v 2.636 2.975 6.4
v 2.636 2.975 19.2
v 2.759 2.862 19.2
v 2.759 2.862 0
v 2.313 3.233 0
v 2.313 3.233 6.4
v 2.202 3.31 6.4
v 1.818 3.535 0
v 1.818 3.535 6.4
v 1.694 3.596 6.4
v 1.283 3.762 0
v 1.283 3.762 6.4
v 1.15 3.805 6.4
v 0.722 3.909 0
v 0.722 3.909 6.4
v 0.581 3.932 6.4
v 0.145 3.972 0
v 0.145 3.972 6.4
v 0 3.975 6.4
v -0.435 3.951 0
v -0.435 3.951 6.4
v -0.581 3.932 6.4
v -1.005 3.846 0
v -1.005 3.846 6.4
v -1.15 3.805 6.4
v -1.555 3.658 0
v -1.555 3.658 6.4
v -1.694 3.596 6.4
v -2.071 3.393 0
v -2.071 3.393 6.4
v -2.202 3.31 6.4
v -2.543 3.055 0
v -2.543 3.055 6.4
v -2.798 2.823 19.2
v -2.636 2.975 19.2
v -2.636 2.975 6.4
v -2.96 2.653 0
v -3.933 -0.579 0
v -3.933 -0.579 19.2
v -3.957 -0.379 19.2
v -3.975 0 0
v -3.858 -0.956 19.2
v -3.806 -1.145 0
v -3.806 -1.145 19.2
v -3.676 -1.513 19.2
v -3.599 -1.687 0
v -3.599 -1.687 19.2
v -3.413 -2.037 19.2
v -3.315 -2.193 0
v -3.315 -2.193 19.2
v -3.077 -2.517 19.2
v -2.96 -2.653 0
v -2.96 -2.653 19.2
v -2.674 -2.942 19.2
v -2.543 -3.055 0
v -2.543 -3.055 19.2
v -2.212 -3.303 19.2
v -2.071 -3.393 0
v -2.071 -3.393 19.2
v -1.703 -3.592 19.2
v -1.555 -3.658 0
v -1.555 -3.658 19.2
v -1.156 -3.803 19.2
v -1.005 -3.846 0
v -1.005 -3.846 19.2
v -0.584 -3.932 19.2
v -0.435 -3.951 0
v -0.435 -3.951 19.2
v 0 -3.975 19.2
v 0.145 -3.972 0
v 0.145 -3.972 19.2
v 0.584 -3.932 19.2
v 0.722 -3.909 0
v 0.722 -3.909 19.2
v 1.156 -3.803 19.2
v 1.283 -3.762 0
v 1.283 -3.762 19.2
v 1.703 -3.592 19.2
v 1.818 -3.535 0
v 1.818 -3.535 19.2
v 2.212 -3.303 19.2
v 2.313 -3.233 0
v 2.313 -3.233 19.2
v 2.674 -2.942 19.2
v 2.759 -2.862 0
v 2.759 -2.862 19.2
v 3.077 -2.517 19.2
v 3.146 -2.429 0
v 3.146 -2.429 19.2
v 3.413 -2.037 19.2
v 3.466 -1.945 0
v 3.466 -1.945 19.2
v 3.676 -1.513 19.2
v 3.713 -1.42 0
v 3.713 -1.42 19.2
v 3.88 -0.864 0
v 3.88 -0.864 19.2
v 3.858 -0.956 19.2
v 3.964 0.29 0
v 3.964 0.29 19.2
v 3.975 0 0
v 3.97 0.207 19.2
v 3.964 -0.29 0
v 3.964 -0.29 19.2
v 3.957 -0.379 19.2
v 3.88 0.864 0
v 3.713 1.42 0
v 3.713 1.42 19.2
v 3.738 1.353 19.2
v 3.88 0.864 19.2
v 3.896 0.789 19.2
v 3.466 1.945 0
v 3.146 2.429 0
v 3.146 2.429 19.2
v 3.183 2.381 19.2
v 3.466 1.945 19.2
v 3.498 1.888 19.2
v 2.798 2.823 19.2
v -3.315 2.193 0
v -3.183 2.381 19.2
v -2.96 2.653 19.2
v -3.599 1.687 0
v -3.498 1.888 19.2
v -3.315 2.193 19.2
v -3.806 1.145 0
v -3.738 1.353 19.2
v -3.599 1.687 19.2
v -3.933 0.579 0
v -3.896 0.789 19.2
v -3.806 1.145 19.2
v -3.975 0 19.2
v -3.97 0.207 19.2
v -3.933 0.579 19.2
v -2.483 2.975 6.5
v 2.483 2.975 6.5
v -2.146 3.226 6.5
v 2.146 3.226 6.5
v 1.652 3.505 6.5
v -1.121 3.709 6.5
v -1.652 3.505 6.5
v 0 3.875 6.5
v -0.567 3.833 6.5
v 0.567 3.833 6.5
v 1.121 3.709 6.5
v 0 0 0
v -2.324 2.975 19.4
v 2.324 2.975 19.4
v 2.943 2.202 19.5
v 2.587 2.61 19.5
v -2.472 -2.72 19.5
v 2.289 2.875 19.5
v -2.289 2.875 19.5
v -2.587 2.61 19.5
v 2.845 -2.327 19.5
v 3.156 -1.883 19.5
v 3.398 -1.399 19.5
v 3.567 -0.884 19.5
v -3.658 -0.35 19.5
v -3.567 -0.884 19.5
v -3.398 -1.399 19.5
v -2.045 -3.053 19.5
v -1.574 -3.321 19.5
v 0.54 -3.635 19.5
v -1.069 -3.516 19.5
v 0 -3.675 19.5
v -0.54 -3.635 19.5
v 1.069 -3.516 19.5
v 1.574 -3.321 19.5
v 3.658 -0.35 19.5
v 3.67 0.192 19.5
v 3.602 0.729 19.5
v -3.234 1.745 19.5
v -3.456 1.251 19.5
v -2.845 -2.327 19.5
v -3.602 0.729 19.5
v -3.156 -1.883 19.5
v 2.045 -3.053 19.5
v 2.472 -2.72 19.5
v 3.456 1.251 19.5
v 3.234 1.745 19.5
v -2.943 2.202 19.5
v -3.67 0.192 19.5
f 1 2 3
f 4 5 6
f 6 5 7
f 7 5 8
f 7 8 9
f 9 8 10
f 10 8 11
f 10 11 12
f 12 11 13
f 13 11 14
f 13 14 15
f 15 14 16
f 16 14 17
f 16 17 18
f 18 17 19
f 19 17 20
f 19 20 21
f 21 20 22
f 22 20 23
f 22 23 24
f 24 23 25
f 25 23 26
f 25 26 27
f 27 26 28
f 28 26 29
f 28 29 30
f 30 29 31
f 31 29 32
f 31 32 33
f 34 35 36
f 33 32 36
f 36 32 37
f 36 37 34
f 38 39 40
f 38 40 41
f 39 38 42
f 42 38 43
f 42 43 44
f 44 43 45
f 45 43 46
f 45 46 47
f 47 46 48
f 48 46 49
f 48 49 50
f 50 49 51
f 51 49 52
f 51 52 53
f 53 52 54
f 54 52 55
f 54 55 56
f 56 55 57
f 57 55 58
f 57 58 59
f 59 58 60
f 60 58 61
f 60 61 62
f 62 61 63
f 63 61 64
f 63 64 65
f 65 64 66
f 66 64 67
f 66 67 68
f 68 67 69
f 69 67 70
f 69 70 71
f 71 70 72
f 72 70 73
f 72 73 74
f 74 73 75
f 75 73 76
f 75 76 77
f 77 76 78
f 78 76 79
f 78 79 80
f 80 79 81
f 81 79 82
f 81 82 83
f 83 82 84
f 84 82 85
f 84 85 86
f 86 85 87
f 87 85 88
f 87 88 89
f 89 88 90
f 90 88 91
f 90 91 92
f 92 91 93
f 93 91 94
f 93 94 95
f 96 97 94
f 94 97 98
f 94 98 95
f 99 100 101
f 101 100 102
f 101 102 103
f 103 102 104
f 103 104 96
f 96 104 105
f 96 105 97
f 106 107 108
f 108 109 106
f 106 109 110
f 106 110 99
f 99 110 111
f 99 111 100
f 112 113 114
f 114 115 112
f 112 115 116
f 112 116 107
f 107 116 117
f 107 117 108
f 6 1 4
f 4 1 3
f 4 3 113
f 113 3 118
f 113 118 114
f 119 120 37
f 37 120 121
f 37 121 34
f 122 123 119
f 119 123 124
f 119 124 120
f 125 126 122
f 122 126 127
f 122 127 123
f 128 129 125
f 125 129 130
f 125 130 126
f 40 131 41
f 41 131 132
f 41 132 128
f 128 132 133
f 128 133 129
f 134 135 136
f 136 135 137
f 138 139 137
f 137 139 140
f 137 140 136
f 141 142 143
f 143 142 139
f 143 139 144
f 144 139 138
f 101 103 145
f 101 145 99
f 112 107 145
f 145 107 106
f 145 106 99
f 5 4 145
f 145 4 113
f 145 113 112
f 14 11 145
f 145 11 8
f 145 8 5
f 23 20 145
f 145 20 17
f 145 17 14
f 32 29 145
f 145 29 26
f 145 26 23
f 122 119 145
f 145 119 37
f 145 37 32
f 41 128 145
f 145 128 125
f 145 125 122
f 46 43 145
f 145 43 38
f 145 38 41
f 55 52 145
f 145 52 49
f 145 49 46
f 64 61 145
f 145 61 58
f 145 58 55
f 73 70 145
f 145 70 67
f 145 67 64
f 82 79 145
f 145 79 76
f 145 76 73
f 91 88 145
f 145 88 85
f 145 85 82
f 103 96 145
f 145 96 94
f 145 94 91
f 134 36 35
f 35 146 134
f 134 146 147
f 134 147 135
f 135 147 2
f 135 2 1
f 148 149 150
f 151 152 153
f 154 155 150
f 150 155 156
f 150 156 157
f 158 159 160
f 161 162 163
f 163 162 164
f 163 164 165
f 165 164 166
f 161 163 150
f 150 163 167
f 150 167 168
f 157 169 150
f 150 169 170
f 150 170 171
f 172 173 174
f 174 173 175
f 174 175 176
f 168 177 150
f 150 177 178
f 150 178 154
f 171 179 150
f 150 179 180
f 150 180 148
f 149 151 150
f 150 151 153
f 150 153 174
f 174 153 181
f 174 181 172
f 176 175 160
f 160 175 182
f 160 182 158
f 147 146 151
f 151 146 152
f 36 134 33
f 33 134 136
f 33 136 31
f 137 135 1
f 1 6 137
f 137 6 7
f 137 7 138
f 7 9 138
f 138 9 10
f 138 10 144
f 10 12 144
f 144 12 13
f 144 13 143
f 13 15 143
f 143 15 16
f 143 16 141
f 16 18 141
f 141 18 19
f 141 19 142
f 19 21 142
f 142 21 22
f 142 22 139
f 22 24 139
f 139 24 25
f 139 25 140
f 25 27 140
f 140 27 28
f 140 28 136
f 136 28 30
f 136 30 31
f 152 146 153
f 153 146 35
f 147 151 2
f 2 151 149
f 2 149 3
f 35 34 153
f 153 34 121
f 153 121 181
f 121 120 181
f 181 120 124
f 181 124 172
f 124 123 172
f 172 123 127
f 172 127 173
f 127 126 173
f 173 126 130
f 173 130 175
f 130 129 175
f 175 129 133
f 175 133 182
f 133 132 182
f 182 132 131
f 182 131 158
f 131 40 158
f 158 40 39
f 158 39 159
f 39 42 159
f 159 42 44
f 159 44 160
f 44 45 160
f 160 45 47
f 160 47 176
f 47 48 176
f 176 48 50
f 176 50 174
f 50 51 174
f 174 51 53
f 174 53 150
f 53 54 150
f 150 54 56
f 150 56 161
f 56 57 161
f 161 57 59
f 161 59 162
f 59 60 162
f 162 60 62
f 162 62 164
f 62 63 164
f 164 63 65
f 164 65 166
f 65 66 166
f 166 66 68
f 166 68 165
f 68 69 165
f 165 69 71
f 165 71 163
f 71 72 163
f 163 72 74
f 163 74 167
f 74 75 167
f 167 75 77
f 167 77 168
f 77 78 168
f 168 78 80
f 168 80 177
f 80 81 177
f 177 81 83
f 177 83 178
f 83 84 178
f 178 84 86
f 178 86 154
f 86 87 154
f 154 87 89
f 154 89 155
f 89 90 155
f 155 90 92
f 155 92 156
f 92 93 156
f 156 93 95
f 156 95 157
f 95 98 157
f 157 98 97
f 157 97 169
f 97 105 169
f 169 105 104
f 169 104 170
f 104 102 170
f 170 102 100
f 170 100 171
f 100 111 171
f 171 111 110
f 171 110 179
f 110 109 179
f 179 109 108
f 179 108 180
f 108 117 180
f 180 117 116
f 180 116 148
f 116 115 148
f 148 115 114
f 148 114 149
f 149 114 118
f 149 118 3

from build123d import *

# Parameters (mm, degrees)
EXTRUDE_1_DEPTH = 6.5
EXTRUDE_START   = 6.5
EXTRUDE_2_DEPTH = 13
CHAMFER_9_SIZE  = 0.1
CHAMFER_1_SIZE  = 0.3


with BuildPart() as part:
    # ｽｹｯﾁ1 → ﾎﾞｽ - 押し出し1 (new body)
    with BuildSketch(Plane.XY):
        with BuildLine():
            ThreePointArc((0, 3.975), (-1.409787218, 3.71660127), (-2.636285265, 2.975))
            Line((-2.636285265, 2.975), (0, 2.975))
            Line((0, 2.975), (0, 3.975))
        make_face()
        with BuildLine():
            Line((0, 2.975), (-2.636285265, 2.975))
            ThreePointArc((-2.636285265, 2.975), (-3.71660127, -1.409787218), (0, -3.975))
            Line((0, -3.975), (0, 2.975))
        make_face()
        with BuildLine():
            Line((0, 3.975), (0, 2.975))
            Line((0, 2.975), (2.636285265, 2.975))
            ThreePointArc((2.636285265, 2.975), (1.409787218, 3.71660127), (0, 3.975))
        make_face()
        with BuildLine():
            Line((2.636285265, 2.975), (0, 2.975))
            Line((0, 2.975), (0, -3.975))
            ThreePointArc((0, -3.975), (2.810749455, -2.810749455), (3.975, 0))
            ThreePointArc((3.975, 0), (3.624904063, 1.631163859), (2.636285265, 2.975))
        make_face()
    extrude(amount=EXTRUDE_1_DEPTH)

    # ｽｹｯﾁ1<3> → ﾎﾞｽ - 押し出し2 (add)
    with BuildSketch(Plane.XY.offset(EXTRUDE_START)):
        with BuildLine():
            ThreePointArc((-2.636285265, 2.975), (0, -3.975), (2.636285265, 2.975))
            Line((2.636285265, 2.975), (-2.636285265, 2.975))
        make_face()
    extrude(amount=EXTRUDE_2_DEPTH)

    # 面取り9
    # the kernel refuses this chamfer: 0.1 mm, written as the material it takes off along each edge
    with BuildSketch(Plane(origin=(0, 0, 6.5), x_dir=(-0.7102313336903862, 0.7039683605421307, 0), z_dir=(-0.7039683605421307, -0.7102313336903862, 0))) as chamfer_9_piece_1_section:
        Polygon((3.975, CHAMFER_9_SIZE), (3.975 - CHAMFER_9_SIZE, 0), (3.975, 0), align=None)
    chamfer_9_piece_1 = revolve(axis=Axis((0, 0, 6.5), (0, 0, -1)), revolution_arc=90.507480781, mode=Mode.PRIVATE)
    chamfer_9_piece_1 = split(chamfer_9_piece_1, bisect_by=Plane(origin=(0, 2.975, 6.452222293), z_dir=(0, 1, 0)), keep=Keep.TOP, mode=Mode.PRIVATE)
    add(chamfer_9_piece_1, mode=Mode.SUBTRACT)
    with BuildSketch(Plane(origin=(2.893453564, 2.975, 19.5), x_dir=(0, 0.02749587661058671, -0.9996219169112966), z_dir=(-1, 0, 0))) as chamfer_9_piece_2:
        Polygon((CHAMFER_9_SIZE * 0.999621916911, CHAMFER_9_SIZE * 0.0274958766106), (-CHAMFER_9_SIZE * 0.0274958766106, CHAMFER_9_SIZE * 0.999621916911), (0, 0), align=None)
    extrude(amount=5.786907128, mode=Mode.SUBTRACT)

    # 面取り1
    chamfer_1_edges = [part.edges().sort_by_distance(p)[0] for p in [
        (0, -3.975, 19.5),
    ]]
    chamfer(chamfer_1_edges, length=CHAMFER_1_SIZE)


solid = part.part
